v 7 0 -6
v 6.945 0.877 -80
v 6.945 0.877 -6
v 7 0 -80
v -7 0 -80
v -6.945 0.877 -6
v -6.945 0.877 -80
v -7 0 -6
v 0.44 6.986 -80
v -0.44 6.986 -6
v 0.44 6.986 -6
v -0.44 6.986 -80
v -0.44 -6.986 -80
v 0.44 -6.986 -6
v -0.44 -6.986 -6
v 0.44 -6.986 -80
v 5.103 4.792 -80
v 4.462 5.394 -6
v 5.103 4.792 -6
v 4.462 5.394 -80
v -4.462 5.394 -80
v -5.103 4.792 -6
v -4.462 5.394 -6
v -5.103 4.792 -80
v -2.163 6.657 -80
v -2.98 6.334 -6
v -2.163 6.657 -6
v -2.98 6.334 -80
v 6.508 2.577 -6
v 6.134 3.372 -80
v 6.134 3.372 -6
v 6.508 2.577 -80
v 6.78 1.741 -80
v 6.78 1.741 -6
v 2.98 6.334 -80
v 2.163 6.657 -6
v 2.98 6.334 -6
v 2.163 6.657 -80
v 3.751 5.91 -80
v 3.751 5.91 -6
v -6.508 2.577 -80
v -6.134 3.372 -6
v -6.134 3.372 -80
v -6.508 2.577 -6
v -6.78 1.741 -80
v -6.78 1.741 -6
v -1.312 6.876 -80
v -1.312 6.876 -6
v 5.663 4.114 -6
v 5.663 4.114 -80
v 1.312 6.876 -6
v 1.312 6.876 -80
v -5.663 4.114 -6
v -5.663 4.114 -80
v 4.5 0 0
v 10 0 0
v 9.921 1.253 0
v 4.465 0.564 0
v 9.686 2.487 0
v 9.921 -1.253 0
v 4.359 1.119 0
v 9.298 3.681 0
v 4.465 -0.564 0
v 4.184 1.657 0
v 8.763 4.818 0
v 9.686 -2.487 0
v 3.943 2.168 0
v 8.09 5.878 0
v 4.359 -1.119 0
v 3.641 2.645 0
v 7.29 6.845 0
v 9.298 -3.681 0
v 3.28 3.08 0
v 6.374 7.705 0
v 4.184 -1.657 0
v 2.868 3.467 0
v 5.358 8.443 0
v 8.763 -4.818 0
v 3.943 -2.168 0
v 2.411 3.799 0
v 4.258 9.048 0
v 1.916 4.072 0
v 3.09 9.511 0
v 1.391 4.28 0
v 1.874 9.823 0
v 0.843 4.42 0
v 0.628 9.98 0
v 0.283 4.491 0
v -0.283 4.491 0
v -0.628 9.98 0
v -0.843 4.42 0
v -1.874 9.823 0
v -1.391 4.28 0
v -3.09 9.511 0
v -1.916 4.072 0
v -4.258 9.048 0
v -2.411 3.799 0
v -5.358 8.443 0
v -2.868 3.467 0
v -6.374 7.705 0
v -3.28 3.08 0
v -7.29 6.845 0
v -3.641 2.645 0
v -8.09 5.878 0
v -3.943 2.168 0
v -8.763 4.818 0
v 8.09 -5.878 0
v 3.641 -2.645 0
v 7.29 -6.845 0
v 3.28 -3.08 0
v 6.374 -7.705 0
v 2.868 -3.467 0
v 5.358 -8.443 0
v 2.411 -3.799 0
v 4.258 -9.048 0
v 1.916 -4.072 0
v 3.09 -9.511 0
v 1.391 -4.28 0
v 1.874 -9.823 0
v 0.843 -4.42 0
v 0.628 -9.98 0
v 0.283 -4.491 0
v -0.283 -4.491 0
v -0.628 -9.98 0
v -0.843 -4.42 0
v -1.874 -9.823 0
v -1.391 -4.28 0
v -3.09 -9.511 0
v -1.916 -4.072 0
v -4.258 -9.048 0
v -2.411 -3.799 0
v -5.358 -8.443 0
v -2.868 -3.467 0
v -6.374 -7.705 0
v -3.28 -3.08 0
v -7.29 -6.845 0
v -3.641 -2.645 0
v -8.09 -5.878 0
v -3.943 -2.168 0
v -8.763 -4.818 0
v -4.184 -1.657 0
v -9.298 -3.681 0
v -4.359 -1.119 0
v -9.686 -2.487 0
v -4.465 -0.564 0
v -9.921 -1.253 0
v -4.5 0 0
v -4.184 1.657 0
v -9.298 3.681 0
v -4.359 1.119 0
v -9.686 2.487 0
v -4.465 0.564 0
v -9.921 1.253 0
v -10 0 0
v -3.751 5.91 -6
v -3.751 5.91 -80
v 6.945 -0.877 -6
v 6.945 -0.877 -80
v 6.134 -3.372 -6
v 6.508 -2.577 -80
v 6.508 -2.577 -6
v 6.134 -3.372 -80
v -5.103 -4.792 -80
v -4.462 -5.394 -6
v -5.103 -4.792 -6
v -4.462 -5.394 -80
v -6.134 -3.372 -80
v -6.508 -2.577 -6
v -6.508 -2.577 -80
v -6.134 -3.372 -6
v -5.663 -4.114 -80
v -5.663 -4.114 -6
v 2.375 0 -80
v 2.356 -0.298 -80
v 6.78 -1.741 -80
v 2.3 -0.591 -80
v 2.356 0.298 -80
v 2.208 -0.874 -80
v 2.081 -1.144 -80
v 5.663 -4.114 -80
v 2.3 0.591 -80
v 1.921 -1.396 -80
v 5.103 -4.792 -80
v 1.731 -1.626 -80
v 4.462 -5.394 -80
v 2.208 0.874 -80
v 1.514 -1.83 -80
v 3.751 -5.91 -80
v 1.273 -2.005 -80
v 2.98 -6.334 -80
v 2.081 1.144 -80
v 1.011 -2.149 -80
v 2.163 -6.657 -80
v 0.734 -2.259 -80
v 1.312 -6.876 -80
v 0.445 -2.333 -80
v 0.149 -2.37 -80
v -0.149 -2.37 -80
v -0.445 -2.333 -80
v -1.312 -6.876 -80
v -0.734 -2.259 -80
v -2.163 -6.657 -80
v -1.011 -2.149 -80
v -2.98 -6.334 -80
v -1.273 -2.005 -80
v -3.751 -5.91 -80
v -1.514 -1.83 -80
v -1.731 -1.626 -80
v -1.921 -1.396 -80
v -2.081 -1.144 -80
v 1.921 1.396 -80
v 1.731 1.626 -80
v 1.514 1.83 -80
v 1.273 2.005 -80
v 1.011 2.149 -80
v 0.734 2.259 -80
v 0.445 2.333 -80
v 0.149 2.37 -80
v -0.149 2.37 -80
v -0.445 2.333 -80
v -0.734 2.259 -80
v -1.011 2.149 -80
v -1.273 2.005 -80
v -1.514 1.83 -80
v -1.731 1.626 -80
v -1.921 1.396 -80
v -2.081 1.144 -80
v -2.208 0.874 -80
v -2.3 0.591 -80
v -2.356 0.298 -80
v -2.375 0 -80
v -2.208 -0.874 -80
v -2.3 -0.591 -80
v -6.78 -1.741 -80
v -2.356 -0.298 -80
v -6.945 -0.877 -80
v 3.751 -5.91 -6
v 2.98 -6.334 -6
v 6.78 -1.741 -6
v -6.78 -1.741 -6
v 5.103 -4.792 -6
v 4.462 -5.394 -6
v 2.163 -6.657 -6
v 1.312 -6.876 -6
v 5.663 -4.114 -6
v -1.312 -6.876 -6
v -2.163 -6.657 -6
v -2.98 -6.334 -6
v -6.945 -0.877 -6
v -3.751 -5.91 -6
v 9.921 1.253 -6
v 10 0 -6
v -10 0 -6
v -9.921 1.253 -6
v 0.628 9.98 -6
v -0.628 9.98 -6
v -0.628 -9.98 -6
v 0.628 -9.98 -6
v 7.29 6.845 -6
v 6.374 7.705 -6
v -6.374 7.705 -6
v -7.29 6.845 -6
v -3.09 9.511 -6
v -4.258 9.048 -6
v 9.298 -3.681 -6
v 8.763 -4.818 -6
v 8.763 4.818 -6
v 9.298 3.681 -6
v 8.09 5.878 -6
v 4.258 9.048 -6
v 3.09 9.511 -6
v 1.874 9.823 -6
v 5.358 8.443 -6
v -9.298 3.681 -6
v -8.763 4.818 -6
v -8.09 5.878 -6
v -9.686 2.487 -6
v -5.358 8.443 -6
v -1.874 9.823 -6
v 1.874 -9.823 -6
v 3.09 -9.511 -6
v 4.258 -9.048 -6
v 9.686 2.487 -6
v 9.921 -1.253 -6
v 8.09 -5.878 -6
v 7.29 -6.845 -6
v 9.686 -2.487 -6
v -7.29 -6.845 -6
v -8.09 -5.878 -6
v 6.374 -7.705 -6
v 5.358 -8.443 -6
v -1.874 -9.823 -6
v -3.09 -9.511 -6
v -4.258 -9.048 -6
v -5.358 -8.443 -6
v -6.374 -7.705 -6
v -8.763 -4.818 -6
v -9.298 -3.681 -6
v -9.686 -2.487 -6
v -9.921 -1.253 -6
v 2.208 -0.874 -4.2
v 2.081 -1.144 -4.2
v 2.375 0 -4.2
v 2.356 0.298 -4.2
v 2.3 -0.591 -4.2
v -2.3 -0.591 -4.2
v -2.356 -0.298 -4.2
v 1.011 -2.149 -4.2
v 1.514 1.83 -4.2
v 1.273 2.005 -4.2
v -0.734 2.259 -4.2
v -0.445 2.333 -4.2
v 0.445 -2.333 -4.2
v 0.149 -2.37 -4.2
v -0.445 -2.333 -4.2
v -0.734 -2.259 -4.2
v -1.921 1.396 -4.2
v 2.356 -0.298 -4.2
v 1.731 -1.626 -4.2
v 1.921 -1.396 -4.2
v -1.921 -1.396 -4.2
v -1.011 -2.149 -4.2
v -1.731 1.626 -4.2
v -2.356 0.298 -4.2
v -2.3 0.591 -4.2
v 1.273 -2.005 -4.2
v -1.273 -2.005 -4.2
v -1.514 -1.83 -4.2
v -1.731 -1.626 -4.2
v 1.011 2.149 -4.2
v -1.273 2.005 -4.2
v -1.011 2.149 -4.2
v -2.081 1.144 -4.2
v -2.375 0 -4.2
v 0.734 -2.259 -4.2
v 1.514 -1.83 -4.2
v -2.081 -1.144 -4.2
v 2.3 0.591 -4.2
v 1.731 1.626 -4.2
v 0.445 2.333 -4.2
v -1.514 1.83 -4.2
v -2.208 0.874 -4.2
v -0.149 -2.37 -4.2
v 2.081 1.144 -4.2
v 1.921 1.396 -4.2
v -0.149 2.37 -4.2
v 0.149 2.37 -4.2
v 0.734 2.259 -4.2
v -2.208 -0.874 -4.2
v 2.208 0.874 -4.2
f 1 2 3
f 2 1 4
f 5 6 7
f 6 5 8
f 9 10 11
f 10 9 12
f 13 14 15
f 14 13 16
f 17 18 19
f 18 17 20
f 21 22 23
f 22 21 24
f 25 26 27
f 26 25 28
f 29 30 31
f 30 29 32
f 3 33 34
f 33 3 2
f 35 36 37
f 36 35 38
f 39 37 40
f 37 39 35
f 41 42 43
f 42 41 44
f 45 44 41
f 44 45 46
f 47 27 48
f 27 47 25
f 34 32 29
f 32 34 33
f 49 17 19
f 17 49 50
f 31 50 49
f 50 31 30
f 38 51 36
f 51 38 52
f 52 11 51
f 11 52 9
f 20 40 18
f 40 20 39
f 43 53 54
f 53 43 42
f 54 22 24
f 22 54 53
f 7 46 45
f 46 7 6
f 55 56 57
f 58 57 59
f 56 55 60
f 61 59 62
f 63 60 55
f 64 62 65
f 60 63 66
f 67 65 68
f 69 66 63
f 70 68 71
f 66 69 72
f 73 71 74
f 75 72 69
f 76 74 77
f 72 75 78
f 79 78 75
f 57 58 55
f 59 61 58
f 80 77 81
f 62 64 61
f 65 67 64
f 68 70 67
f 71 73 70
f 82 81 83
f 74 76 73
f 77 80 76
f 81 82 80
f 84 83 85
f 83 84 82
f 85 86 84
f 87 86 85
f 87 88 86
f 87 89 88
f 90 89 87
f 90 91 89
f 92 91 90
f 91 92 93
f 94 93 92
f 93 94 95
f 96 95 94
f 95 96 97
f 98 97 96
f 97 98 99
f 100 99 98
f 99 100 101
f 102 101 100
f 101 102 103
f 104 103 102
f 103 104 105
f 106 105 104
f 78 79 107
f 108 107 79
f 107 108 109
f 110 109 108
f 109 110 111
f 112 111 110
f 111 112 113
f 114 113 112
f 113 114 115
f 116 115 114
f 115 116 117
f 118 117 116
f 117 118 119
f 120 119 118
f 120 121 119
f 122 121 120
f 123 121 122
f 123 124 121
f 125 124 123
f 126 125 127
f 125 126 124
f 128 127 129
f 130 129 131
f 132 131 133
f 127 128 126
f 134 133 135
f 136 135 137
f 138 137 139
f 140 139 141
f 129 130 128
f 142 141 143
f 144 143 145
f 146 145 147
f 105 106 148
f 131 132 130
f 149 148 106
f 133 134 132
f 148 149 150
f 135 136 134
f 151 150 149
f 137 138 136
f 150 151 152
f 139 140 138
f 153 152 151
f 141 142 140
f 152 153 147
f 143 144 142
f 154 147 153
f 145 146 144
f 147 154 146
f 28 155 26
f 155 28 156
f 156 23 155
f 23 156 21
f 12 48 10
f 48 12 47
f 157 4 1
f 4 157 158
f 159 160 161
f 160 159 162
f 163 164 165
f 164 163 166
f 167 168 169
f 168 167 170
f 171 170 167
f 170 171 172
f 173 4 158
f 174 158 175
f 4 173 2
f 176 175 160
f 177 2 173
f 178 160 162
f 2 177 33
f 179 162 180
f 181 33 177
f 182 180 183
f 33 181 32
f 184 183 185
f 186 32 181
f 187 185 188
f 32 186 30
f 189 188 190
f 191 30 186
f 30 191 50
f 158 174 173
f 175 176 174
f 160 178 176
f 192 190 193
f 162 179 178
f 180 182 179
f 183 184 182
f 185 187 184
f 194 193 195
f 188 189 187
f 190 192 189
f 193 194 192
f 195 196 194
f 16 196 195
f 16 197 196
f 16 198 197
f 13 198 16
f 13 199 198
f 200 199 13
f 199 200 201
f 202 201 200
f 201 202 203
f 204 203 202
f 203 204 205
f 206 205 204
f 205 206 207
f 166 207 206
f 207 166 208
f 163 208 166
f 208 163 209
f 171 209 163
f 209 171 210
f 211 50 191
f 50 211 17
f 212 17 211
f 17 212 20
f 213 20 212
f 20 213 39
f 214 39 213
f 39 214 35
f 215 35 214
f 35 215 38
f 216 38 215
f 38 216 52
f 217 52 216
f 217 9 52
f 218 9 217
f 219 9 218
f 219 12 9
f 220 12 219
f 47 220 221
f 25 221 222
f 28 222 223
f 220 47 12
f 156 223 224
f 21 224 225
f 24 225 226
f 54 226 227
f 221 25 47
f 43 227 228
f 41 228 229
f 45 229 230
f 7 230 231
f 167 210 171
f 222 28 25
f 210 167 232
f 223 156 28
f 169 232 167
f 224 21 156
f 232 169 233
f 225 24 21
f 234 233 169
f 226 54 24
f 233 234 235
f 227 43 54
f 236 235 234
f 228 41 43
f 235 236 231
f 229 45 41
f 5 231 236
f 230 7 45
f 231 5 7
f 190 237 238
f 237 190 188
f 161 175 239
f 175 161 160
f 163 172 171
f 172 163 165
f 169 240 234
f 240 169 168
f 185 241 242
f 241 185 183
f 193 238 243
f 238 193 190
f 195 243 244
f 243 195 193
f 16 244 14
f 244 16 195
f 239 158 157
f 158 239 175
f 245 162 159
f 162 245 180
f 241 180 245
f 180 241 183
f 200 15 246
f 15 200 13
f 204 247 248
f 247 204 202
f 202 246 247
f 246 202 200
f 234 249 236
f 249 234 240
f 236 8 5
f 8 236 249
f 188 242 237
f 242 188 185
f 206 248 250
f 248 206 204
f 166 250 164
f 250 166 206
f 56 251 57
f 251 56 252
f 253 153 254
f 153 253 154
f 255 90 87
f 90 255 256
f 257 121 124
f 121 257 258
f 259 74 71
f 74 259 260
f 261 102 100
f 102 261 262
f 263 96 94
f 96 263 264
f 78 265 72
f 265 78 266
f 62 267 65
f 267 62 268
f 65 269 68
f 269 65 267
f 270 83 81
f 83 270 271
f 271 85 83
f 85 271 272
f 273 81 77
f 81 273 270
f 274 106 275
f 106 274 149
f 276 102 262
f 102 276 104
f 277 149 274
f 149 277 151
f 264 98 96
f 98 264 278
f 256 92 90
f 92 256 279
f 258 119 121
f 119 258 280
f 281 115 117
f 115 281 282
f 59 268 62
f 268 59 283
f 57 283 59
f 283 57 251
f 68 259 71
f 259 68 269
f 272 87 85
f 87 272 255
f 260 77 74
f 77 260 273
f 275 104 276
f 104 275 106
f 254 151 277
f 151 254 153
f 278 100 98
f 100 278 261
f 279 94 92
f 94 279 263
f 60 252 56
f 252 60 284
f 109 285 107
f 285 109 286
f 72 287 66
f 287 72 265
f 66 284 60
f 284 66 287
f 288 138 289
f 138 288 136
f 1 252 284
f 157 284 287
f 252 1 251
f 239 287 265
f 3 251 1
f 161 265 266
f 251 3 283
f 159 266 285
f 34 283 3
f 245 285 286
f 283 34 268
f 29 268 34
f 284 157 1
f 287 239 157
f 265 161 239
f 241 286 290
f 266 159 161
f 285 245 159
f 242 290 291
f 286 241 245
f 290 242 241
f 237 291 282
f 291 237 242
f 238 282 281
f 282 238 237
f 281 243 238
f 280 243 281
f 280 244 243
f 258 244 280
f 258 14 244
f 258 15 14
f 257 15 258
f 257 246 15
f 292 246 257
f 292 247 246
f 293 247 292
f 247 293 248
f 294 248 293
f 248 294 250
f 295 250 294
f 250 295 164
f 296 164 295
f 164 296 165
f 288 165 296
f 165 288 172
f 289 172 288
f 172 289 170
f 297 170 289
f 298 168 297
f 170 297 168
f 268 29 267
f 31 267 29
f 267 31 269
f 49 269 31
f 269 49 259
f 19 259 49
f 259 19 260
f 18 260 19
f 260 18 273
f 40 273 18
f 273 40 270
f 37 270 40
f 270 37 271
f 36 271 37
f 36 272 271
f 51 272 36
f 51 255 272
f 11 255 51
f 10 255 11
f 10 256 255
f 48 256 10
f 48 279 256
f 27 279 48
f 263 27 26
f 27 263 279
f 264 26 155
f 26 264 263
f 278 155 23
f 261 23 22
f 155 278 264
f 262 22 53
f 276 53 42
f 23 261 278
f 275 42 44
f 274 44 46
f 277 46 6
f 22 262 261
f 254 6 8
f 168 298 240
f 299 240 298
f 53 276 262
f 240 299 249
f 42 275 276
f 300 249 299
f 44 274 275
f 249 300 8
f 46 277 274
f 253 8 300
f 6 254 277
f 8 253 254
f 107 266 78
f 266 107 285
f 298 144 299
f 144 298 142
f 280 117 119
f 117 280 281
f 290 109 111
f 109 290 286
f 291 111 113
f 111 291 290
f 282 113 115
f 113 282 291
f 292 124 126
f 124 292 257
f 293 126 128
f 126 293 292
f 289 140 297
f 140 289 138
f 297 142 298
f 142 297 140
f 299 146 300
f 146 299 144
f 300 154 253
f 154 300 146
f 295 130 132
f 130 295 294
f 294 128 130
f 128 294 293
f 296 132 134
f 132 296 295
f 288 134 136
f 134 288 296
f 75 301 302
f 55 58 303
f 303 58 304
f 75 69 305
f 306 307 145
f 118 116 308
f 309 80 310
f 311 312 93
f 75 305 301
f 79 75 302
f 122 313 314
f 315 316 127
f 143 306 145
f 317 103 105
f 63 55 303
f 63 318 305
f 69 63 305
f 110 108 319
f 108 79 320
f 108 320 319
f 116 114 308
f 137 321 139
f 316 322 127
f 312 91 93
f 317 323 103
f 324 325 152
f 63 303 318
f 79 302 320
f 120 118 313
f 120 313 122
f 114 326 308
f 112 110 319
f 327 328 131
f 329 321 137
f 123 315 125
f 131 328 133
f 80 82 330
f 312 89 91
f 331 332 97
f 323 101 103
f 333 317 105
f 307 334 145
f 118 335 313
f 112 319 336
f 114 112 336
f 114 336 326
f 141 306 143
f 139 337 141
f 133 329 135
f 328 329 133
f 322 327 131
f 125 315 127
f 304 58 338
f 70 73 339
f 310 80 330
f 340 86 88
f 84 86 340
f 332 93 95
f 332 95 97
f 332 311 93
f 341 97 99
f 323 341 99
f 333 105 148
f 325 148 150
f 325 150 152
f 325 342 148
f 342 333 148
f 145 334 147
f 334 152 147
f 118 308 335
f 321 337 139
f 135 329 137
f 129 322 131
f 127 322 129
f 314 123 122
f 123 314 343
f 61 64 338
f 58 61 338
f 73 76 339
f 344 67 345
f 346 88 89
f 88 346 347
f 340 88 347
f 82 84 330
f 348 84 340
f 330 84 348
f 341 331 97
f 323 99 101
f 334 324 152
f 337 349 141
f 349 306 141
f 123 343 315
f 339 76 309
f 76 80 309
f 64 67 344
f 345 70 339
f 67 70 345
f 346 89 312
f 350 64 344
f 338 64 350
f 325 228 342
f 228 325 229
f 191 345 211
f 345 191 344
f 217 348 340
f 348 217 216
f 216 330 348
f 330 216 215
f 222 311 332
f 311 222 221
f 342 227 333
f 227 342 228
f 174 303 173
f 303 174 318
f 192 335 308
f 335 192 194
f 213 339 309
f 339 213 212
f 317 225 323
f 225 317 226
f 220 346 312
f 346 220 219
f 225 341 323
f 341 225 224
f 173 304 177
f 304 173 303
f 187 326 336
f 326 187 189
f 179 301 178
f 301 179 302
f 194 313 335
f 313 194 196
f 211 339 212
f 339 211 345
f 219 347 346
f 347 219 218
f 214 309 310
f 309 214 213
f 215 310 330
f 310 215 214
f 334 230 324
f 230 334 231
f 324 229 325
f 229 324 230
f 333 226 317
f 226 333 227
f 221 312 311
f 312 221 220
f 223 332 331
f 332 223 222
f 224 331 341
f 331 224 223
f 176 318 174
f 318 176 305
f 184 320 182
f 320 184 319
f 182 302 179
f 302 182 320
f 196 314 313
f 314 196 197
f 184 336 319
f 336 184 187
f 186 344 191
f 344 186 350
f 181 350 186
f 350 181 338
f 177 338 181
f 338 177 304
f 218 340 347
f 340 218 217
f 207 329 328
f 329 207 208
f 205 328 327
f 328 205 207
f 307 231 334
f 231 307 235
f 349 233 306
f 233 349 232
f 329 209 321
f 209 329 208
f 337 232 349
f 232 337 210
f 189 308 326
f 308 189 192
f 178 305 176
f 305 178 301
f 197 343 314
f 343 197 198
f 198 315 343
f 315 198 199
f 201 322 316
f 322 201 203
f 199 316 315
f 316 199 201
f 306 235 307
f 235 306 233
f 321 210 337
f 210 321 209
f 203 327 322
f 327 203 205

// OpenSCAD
$fn = 50;


difference() {
	union() {
		translate(v = [0, 0, -80.0000000000]) {
			cylinder(h = 80, r = 7.0000000000);
		}
		translate(v = [0, 0, -6.0000000000]) {
			cylinder(h = 6, r = 10.0000000000);
		}
	}
	union() {
		translate(v = [0, 0, 0]) {
			rotate(a = [0, 0, 0]) {
				difference() {
					union() {
						#translate(v = [0, 0, -80.0000000000]) {
							cylinder(h = 80, r = 2.2500000000);
						}
						#translate(v = [0, 0, -4.2000000000]) {
							cylinder(h = 4.2000000000, r1 = 2.3750000000, r2 = 4.5000000000);
						}
						#translate(v = [0, 0, -80.0000000000]) {
							cylinder(h = 80, r = 2.3750000000);
						}
						#translate(v = [0, 0, -80.0000000000]) {
							cylinder(h = 80, r = 2.2500000000);
						}
					}
					union();
				}
			}
		}
	}
}
